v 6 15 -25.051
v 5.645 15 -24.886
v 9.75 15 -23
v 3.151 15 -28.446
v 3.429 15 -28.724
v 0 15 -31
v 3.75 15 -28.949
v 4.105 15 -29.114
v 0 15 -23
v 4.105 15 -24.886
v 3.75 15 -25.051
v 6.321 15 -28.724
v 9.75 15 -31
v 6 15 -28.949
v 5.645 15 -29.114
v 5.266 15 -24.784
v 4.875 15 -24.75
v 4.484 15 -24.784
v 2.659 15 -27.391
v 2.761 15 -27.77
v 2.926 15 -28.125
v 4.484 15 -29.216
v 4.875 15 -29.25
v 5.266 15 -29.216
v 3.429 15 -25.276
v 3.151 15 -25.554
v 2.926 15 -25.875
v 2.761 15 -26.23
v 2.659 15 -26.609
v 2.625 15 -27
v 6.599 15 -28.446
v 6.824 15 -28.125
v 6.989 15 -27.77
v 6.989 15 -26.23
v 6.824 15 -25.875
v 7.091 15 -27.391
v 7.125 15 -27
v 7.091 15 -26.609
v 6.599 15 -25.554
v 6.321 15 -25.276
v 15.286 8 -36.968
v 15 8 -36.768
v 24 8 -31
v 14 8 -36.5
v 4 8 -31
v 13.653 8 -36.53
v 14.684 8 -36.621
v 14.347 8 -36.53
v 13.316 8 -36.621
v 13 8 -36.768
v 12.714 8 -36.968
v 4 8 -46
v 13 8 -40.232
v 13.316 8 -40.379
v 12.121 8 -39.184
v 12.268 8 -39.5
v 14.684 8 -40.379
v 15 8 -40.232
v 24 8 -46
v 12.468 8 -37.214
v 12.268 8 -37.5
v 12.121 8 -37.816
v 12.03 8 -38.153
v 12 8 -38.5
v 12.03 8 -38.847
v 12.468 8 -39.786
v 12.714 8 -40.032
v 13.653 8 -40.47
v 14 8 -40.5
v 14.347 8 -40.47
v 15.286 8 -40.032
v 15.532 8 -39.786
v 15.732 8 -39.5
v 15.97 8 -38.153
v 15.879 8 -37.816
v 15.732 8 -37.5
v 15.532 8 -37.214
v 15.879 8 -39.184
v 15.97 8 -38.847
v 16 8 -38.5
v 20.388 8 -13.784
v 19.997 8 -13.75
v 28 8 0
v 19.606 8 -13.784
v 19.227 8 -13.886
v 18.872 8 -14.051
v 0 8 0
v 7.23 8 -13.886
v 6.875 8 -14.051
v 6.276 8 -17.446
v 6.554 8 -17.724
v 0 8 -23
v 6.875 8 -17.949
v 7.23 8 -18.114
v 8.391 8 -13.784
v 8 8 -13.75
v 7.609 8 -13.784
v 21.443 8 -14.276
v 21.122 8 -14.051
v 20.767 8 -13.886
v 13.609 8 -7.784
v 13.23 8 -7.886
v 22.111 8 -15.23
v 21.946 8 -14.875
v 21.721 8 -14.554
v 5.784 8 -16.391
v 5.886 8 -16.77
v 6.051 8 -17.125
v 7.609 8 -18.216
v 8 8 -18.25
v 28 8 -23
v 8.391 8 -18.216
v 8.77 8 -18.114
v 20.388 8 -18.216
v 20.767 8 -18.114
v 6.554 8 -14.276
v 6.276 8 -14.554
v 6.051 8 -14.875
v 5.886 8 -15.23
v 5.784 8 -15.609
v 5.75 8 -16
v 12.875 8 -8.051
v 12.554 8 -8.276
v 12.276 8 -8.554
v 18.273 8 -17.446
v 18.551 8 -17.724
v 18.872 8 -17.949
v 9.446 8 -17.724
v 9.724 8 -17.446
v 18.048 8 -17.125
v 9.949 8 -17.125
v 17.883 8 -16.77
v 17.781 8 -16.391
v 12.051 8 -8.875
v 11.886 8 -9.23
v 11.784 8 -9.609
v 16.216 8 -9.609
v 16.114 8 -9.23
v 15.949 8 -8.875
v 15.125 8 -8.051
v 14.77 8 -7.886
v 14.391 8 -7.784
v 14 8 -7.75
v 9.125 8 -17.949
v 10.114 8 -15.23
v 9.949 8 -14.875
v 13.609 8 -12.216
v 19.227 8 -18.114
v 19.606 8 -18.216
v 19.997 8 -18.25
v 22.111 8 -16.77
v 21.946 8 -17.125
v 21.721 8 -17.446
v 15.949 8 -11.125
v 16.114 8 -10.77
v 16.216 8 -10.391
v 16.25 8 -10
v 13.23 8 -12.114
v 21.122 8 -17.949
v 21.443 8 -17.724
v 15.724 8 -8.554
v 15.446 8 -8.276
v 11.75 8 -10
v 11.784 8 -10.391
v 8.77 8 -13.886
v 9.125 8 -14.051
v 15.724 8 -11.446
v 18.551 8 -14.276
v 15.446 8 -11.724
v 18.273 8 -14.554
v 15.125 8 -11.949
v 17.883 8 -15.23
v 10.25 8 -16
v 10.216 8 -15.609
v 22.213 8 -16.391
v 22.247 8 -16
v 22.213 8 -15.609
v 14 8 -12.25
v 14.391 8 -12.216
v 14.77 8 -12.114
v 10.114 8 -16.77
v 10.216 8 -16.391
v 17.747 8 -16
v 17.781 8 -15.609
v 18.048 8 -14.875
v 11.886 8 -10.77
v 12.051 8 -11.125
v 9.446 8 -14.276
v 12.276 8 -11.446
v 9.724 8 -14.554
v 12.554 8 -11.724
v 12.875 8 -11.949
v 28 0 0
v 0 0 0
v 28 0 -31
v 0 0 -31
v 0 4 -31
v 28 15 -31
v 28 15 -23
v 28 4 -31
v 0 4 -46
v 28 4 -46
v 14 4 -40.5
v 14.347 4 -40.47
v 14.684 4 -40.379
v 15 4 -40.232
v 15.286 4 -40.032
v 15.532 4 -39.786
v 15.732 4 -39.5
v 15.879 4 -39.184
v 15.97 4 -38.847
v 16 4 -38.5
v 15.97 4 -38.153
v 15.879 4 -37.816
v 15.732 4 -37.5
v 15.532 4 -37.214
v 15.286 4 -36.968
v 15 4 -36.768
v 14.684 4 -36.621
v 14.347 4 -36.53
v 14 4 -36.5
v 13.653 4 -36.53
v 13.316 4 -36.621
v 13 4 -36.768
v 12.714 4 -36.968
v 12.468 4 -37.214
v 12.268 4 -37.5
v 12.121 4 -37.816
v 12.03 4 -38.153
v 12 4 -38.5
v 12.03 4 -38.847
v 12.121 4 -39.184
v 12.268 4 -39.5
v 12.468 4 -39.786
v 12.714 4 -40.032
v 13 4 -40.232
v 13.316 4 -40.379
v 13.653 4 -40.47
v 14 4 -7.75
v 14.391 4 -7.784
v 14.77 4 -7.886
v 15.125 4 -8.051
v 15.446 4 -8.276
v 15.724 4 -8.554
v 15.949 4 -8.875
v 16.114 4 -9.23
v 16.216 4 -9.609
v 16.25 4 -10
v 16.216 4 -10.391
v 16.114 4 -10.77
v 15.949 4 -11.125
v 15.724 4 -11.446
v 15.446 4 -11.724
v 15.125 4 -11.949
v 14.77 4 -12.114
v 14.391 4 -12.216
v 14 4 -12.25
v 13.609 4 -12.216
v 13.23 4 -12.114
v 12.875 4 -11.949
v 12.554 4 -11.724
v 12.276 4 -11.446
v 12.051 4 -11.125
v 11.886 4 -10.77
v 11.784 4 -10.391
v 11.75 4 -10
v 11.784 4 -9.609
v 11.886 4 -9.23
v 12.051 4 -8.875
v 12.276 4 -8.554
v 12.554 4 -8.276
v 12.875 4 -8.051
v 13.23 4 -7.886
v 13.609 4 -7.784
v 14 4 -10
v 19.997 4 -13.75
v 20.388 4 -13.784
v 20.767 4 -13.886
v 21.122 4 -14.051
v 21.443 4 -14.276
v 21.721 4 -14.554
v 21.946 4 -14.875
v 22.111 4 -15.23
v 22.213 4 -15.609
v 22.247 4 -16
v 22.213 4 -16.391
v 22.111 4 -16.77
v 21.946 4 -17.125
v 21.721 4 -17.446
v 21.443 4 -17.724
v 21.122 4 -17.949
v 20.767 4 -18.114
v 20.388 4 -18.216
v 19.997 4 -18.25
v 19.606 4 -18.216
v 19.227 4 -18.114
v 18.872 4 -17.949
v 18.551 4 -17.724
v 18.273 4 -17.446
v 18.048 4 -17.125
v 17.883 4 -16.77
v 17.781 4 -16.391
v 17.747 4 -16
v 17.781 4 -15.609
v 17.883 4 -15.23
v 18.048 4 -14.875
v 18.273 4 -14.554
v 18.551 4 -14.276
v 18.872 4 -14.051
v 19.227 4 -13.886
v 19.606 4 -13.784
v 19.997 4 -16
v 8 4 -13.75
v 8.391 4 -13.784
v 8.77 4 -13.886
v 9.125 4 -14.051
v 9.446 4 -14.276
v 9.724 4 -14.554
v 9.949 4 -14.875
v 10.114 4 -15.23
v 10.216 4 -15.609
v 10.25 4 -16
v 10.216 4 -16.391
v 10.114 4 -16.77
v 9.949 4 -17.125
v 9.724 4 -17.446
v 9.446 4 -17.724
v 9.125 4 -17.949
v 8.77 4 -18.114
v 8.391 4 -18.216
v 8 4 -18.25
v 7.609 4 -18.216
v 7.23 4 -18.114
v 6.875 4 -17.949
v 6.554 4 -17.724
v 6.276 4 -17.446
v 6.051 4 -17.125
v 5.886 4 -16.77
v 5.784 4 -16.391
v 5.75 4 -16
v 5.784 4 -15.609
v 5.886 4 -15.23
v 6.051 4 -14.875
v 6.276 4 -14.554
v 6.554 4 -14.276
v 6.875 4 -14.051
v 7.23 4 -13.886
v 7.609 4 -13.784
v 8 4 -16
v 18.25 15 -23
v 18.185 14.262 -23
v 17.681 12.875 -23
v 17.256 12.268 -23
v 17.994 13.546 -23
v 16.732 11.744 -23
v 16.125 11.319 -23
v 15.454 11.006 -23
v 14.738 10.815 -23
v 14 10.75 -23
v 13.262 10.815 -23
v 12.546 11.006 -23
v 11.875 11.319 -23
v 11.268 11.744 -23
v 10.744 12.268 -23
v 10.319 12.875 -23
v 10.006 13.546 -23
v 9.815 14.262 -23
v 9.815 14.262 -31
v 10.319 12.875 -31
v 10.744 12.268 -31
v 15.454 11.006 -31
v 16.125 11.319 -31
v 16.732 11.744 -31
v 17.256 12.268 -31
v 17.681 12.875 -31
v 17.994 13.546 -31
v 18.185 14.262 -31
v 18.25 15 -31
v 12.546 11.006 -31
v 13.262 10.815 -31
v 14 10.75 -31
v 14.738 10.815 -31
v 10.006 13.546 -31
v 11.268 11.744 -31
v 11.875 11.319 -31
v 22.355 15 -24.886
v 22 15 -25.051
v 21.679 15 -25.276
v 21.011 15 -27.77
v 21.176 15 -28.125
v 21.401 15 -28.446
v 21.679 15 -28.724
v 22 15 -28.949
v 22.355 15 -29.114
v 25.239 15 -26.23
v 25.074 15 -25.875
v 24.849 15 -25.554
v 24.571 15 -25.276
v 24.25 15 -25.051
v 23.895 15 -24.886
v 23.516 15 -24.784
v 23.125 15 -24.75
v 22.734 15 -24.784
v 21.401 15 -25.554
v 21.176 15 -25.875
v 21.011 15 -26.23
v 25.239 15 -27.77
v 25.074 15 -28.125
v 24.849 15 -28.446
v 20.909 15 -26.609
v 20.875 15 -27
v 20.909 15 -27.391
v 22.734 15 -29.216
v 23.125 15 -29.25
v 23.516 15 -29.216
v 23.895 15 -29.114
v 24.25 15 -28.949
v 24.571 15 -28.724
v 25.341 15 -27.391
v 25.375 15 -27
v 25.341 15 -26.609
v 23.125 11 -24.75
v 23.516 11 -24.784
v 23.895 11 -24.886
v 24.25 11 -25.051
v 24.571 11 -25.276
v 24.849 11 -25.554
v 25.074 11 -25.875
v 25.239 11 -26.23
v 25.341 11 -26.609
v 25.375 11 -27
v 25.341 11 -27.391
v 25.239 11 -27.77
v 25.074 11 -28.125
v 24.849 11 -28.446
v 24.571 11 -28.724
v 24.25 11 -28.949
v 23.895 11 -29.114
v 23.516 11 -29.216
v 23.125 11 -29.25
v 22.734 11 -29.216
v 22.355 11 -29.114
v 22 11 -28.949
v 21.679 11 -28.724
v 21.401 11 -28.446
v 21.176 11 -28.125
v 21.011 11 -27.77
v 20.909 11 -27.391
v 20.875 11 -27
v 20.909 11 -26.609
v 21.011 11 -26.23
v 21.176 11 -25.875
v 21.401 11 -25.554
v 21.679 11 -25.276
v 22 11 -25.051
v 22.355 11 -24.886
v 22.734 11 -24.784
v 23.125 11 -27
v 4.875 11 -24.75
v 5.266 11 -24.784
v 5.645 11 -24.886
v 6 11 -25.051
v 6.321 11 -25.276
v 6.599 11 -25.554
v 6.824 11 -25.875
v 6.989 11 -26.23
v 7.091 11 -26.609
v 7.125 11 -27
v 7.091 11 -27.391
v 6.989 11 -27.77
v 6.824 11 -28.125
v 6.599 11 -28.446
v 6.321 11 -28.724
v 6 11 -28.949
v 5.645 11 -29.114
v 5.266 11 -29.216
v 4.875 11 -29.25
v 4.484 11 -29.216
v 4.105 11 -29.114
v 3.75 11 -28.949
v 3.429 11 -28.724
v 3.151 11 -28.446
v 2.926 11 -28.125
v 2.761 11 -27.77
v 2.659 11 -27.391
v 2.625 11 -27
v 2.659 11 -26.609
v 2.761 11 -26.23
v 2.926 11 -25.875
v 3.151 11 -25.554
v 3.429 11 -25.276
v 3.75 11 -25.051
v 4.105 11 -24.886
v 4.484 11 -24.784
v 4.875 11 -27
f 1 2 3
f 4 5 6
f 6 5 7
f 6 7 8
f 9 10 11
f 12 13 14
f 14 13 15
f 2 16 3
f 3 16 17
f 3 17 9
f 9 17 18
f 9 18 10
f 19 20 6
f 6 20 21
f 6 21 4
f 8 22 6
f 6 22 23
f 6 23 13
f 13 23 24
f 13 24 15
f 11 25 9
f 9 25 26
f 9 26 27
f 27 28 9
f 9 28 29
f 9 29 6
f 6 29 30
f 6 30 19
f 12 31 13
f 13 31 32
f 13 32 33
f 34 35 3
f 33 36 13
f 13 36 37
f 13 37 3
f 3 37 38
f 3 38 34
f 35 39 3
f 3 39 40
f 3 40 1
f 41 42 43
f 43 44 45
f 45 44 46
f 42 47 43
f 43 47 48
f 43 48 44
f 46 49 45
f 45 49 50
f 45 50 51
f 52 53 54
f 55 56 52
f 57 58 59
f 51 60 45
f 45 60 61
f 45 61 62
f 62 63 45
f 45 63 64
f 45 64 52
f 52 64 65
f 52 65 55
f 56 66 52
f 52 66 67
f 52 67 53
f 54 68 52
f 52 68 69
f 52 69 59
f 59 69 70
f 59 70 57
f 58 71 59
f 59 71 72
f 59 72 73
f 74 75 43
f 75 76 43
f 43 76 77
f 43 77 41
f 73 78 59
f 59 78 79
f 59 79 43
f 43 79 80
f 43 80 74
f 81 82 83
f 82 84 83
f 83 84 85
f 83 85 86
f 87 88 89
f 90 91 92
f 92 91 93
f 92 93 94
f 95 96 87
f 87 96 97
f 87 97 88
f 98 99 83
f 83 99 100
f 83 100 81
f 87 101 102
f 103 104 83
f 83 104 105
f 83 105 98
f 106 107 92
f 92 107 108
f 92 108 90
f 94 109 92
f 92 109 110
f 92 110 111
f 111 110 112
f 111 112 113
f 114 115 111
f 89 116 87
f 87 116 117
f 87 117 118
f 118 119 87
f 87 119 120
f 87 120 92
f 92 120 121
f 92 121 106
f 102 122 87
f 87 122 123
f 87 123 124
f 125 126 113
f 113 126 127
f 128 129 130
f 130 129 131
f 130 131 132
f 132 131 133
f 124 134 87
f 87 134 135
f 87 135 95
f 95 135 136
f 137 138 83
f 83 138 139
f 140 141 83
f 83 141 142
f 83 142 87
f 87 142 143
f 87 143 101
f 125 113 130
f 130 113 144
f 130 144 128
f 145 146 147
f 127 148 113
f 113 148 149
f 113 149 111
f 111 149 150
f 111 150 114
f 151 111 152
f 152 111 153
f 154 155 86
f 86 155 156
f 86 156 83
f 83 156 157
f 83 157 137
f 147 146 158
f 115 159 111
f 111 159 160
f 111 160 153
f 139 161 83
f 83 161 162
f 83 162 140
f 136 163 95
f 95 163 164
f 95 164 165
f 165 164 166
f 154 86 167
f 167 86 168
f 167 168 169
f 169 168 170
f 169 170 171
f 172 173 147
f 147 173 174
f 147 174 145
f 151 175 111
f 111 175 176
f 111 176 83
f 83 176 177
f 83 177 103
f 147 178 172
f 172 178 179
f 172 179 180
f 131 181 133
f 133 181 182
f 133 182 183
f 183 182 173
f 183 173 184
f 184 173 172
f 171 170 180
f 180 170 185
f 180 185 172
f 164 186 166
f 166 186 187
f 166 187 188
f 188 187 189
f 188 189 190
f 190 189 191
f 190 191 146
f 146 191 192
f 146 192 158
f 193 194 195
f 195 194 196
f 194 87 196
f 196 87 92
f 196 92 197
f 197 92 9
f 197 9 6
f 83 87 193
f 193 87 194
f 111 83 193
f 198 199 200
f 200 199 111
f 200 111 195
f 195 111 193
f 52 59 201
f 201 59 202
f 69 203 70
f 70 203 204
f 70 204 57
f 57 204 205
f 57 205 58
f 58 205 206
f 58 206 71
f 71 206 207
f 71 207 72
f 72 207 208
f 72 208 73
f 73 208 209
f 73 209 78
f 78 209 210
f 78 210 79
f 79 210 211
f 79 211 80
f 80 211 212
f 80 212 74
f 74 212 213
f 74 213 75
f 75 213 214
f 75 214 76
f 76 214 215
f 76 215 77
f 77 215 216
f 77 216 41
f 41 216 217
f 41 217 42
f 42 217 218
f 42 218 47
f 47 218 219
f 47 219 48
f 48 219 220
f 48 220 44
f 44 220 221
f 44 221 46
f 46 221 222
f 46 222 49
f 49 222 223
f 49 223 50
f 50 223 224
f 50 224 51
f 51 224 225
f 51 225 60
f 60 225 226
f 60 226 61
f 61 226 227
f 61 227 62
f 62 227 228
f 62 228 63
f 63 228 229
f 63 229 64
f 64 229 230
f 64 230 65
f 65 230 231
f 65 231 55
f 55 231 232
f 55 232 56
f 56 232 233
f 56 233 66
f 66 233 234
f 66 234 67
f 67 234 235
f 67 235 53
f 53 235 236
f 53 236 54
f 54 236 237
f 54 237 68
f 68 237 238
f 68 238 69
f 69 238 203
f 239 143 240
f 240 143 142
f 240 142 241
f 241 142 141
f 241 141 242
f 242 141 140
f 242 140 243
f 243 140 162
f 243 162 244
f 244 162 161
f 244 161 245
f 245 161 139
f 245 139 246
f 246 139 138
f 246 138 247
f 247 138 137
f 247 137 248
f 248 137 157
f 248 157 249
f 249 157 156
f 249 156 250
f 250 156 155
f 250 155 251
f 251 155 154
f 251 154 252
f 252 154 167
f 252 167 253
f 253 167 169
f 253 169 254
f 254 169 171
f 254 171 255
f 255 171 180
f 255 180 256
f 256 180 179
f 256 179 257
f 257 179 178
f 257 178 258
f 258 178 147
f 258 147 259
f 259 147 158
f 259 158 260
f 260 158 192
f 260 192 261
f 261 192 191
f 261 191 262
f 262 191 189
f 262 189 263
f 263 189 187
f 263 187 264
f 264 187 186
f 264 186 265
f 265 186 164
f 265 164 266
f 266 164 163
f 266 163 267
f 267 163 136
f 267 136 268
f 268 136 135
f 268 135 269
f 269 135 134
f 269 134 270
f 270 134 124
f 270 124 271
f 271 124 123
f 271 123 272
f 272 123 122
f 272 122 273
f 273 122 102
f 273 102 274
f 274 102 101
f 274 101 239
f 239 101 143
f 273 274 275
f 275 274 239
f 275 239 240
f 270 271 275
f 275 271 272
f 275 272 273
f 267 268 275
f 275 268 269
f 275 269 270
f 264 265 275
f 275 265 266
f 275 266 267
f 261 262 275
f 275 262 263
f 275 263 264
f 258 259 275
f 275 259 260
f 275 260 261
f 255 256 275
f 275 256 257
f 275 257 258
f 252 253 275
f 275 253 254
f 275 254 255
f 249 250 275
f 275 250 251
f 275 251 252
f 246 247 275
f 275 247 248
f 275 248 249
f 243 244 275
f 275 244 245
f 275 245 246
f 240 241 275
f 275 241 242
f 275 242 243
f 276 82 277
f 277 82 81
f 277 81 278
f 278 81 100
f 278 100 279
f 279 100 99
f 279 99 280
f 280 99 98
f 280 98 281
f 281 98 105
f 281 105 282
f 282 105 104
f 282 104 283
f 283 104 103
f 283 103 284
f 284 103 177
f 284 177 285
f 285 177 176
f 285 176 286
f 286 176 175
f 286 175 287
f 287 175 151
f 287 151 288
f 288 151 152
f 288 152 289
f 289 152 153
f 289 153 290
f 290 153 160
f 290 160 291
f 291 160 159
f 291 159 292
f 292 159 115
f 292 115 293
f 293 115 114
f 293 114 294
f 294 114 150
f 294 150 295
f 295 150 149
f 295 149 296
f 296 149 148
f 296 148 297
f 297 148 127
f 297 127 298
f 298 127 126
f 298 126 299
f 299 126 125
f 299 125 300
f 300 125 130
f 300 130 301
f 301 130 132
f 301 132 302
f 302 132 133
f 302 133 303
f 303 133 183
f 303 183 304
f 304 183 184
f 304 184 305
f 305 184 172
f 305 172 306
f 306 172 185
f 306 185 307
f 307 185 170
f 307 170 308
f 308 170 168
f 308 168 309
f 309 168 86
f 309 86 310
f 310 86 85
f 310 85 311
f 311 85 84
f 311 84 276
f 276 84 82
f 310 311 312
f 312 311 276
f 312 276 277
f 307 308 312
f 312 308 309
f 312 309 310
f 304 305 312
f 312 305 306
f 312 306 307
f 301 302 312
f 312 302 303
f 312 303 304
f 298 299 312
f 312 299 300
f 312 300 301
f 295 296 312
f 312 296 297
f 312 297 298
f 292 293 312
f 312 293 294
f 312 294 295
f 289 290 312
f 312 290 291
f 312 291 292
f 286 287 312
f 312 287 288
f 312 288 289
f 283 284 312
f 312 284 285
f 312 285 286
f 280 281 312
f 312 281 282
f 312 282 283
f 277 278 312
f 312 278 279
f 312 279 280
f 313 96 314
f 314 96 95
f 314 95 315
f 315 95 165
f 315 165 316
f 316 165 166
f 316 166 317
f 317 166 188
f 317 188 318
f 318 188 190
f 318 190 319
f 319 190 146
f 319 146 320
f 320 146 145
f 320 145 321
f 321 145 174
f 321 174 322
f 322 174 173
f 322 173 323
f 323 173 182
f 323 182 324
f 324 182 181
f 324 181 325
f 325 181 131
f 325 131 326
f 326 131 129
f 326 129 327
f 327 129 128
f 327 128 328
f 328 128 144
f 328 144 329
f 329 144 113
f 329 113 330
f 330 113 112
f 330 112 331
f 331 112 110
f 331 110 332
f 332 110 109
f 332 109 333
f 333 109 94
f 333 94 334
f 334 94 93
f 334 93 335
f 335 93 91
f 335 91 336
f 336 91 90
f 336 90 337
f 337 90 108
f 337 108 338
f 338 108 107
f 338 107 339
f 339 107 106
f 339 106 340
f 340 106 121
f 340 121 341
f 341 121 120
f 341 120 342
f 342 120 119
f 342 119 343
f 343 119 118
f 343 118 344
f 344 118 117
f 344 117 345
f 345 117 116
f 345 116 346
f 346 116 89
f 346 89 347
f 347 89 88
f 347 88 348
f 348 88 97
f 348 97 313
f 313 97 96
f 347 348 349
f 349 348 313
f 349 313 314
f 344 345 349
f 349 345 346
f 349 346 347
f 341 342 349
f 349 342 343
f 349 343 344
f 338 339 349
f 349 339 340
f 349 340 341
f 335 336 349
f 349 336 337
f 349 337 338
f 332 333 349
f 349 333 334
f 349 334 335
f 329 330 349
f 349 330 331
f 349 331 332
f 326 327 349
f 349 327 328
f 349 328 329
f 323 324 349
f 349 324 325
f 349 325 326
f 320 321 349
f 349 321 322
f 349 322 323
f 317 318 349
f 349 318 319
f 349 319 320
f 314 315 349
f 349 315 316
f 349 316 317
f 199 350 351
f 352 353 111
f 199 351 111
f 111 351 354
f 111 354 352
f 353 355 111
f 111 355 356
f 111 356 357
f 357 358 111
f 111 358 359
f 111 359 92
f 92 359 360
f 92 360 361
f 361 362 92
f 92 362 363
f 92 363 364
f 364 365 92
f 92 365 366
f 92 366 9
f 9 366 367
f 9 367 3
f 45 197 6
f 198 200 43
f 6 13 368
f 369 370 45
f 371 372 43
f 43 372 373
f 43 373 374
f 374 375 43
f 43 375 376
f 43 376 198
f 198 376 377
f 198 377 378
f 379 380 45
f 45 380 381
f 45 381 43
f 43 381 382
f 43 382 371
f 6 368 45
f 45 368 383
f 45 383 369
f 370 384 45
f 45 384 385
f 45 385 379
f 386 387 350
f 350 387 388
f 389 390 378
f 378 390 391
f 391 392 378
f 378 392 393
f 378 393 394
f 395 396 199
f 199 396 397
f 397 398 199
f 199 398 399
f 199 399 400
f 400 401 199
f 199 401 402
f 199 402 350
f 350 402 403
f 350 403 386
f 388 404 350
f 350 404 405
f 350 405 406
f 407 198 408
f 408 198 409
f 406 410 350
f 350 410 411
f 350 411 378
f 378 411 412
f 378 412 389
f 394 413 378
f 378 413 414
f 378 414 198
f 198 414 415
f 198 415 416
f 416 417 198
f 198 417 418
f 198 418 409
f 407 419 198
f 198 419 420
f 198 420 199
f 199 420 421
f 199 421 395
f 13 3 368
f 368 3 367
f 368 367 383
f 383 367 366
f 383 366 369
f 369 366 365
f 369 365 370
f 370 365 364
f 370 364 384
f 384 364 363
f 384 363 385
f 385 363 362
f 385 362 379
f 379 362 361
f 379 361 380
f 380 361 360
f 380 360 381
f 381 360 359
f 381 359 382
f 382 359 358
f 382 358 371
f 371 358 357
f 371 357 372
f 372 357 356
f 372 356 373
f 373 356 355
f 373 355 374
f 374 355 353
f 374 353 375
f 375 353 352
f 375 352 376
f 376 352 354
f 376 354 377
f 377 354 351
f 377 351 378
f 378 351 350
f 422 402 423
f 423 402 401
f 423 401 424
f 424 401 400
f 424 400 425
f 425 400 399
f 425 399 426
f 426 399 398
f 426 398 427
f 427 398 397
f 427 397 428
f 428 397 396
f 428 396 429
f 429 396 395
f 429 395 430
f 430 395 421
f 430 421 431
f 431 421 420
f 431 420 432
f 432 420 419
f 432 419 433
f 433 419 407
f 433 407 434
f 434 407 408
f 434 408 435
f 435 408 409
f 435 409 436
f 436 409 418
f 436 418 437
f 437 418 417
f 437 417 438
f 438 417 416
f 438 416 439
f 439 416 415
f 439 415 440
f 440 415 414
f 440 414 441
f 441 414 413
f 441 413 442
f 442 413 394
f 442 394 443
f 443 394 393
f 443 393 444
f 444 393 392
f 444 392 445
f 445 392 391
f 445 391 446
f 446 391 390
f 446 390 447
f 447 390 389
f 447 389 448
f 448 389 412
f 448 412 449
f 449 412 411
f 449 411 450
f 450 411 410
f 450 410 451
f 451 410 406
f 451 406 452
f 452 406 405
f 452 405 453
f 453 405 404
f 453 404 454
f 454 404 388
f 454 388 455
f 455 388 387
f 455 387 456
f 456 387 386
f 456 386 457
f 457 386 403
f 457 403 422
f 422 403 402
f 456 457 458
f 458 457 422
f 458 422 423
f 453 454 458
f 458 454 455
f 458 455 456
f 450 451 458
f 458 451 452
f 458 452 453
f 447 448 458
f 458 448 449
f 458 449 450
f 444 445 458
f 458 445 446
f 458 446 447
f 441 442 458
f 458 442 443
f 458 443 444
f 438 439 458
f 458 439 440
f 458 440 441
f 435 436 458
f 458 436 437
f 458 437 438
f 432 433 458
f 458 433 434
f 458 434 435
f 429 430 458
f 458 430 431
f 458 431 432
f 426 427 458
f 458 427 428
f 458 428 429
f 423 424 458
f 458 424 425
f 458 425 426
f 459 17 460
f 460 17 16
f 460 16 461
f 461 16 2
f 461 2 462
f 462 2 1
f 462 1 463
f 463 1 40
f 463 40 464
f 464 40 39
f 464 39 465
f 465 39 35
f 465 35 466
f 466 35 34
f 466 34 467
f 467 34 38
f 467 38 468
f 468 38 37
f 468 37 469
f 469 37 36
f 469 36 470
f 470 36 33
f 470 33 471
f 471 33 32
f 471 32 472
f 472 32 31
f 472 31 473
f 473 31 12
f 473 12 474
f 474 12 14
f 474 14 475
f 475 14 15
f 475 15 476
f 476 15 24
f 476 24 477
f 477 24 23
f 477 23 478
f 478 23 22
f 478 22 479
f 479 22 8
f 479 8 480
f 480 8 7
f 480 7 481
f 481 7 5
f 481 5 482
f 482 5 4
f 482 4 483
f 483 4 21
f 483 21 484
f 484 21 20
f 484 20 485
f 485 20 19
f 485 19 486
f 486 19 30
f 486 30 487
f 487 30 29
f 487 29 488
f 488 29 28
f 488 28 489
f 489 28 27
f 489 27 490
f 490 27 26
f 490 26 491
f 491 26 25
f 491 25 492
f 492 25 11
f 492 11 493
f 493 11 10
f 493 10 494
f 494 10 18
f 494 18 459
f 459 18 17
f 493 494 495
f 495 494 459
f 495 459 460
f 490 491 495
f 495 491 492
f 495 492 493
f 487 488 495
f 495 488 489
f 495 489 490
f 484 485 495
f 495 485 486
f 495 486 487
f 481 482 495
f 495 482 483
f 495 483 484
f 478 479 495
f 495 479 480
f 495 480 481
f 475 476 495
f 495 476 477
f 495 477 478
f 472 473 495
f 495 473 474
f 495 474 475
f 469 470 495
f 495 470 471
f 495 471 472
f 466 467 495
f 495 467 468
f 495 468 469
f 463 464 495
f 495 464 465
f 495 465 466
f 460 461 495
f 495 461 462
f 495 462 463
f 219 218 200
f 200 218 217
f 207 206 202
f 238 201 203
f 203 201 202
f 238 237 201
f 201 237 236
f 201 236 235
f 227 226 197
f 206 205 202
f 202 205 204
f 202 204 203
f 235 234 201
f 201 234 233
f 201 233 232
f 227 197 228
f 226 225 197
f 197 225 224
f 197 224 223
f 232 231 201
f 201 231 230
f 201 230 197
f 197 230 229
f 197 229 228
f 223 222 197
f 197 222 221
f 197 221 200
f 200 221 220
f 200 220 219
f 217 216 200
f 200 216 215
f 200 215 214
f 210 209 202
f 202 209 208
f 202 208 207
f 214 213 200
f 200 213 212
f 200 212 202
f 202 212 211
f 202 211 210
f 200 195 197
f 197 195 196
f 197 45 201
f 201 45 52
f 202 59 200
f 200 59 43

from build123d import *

# Parameters (mm, degrees)
SKETCH1_W                             = 28
SKETCH1_H                             = 46
SKETCH1_R                             = 2
BOSS_EXTRUDE1_DEPTH                   = 8
SKETCH6_R                             = 2.25
DRAGCHAINMOUNTHOLESCUT_EXTRUDE1_DEPTH = 4
SKETCH2_W                             = 28
SKETCH2_H                             = 8
BRIDGEBOSS_EXTRUDE2_DEPTH             = 7
GROMMETCUT_EXTRUDE3_DEPTH             = 40.217343102
BRIDGEMOUNTHOLESSKETCH4_R             = 2.25
BRIDGEMOUNTHOLESCUT_EXTRUDE4_DEPTH    = 4
SKETCH5_W                             = 15
SKETCH5_H                             = 4
EDGECUT_EXTRUDE5_DEPTH                = 56.901699437
CHAMFER1_SIZE                         = 4


with BuildPart() as part:
    # Sketch1 → Boss-Extrude1 (new body)
    with BuildSketch(Plane(origin=(0, 0, 0), x_dir=(1, 0, 0), z_dir=(0, 1, 0))):
        with Locations((14, 23)):
            Rectangle(SKETCH1_W, SKETCH1_H)
        with Locations(Location((14, 38.5, 0), (0, 0, 270))):
            Circle(SKETCH1_R, mode=Mode.SUBTRACT)
    extrude(amount=BOSS_EXTRUDE1_DEPTH)

    # Sketch6 → DragChainMountHolesCut-Extrude1 (cut)
    with BuildSketch(Plane(origin=(0, 8, 0), x_dir=(1, 0, 0), z_dir=(0, 1, 0))):
        with Locations(Location((8, 16, 0), (0, 0, 270))):
            Circle(SKETCH6_R)
        with Locations(Location((19.996983409, 16, 0), (0, 0, 270))):
            Circle(SKETCH6_R)
        with Locations(Location((14, 10, 0), (0, 0, 270))):
            Circle(SKETCH6_R)
    extrude(amount=-DRAGCHAINMOUNTHOLESCUT_EXTRUDE1_DEPTH, mode=Mode.SUBTRACT)

    # Sketch2 → BridgeBoss-Extrude2 (add)
    with BuildSketch(Plane(origin=(0, 8, 0), x_dir=(1, 0, 0), z_dir=(0, 1, 0))):
        with Locations((14, 27)):
            Rectangle(SKETCH2_W, SKETCH2_H)
    extrude(amount=BRIDGEBOSS_EXTRUDE2_DEPTH)

    # Sketch3 → GrommetCut-Extrude3 (cut, through all)
    with BuildSketch(Plane.XY.offset(-23)):
        with BuildLine():
            Line((9.75, 15), (18.25, 15))
            ThreePointArc((18.25, 15), (14, 10.75), (9.75, 15))
        make_face()
    extrude(amount=-GROMMETCUT_EXTRUDE3_DEPTH, mode=Mode.SUBTRACT)

    # BridgeMountHolesSketch4 → BridgeMountholesCut-Extrude4 (cut)
    with BuildSketch(Plane(origin=(0, 15, 0), x_dir=(1, 0, 0), z_dir=(0, 1, 0))):
        with Locations(Location((4.875, 27, 0), (0, 0, 270))):
            Circle(BRIDGEMOUNTHOLESSKETCH4_R)
        with Locations(Location((23.125, 27, 0), (0, 0, 270))):
            Circle(BRIDGEMOUNTHOLESSKETCH4_R)
    extrude(amount=-BRIDGEMOUNTHOLESCUT_EXTRUDE4_DEPTH, mode=Mode.SUBTRACT)

    # Sketch5 → EdgeCut-Extrude5 (cut, through all)
    with BuildSketch(Plane.ZY):
        with Locations((-38.5, 2)):
            Rectangle(SKETCH5_W, SKETCH5_H)
    extrude(amount=-EDGECUT_EXTRUDE5_DEPTH, mode=Mode.SUBTRACT)

    # Chamfer1
    chamfer1_edges = [part.edges().sort_by_distance(p)[0] for p in [
        (28, 8, -38.5),
        (0, 8, -38.5),
    ]]
    chamfer(chamfer1_edges, length=CHAMFER1_SIZE - 0.0001)  # a hair under: the kernel refuses the full size


solid = part.part
